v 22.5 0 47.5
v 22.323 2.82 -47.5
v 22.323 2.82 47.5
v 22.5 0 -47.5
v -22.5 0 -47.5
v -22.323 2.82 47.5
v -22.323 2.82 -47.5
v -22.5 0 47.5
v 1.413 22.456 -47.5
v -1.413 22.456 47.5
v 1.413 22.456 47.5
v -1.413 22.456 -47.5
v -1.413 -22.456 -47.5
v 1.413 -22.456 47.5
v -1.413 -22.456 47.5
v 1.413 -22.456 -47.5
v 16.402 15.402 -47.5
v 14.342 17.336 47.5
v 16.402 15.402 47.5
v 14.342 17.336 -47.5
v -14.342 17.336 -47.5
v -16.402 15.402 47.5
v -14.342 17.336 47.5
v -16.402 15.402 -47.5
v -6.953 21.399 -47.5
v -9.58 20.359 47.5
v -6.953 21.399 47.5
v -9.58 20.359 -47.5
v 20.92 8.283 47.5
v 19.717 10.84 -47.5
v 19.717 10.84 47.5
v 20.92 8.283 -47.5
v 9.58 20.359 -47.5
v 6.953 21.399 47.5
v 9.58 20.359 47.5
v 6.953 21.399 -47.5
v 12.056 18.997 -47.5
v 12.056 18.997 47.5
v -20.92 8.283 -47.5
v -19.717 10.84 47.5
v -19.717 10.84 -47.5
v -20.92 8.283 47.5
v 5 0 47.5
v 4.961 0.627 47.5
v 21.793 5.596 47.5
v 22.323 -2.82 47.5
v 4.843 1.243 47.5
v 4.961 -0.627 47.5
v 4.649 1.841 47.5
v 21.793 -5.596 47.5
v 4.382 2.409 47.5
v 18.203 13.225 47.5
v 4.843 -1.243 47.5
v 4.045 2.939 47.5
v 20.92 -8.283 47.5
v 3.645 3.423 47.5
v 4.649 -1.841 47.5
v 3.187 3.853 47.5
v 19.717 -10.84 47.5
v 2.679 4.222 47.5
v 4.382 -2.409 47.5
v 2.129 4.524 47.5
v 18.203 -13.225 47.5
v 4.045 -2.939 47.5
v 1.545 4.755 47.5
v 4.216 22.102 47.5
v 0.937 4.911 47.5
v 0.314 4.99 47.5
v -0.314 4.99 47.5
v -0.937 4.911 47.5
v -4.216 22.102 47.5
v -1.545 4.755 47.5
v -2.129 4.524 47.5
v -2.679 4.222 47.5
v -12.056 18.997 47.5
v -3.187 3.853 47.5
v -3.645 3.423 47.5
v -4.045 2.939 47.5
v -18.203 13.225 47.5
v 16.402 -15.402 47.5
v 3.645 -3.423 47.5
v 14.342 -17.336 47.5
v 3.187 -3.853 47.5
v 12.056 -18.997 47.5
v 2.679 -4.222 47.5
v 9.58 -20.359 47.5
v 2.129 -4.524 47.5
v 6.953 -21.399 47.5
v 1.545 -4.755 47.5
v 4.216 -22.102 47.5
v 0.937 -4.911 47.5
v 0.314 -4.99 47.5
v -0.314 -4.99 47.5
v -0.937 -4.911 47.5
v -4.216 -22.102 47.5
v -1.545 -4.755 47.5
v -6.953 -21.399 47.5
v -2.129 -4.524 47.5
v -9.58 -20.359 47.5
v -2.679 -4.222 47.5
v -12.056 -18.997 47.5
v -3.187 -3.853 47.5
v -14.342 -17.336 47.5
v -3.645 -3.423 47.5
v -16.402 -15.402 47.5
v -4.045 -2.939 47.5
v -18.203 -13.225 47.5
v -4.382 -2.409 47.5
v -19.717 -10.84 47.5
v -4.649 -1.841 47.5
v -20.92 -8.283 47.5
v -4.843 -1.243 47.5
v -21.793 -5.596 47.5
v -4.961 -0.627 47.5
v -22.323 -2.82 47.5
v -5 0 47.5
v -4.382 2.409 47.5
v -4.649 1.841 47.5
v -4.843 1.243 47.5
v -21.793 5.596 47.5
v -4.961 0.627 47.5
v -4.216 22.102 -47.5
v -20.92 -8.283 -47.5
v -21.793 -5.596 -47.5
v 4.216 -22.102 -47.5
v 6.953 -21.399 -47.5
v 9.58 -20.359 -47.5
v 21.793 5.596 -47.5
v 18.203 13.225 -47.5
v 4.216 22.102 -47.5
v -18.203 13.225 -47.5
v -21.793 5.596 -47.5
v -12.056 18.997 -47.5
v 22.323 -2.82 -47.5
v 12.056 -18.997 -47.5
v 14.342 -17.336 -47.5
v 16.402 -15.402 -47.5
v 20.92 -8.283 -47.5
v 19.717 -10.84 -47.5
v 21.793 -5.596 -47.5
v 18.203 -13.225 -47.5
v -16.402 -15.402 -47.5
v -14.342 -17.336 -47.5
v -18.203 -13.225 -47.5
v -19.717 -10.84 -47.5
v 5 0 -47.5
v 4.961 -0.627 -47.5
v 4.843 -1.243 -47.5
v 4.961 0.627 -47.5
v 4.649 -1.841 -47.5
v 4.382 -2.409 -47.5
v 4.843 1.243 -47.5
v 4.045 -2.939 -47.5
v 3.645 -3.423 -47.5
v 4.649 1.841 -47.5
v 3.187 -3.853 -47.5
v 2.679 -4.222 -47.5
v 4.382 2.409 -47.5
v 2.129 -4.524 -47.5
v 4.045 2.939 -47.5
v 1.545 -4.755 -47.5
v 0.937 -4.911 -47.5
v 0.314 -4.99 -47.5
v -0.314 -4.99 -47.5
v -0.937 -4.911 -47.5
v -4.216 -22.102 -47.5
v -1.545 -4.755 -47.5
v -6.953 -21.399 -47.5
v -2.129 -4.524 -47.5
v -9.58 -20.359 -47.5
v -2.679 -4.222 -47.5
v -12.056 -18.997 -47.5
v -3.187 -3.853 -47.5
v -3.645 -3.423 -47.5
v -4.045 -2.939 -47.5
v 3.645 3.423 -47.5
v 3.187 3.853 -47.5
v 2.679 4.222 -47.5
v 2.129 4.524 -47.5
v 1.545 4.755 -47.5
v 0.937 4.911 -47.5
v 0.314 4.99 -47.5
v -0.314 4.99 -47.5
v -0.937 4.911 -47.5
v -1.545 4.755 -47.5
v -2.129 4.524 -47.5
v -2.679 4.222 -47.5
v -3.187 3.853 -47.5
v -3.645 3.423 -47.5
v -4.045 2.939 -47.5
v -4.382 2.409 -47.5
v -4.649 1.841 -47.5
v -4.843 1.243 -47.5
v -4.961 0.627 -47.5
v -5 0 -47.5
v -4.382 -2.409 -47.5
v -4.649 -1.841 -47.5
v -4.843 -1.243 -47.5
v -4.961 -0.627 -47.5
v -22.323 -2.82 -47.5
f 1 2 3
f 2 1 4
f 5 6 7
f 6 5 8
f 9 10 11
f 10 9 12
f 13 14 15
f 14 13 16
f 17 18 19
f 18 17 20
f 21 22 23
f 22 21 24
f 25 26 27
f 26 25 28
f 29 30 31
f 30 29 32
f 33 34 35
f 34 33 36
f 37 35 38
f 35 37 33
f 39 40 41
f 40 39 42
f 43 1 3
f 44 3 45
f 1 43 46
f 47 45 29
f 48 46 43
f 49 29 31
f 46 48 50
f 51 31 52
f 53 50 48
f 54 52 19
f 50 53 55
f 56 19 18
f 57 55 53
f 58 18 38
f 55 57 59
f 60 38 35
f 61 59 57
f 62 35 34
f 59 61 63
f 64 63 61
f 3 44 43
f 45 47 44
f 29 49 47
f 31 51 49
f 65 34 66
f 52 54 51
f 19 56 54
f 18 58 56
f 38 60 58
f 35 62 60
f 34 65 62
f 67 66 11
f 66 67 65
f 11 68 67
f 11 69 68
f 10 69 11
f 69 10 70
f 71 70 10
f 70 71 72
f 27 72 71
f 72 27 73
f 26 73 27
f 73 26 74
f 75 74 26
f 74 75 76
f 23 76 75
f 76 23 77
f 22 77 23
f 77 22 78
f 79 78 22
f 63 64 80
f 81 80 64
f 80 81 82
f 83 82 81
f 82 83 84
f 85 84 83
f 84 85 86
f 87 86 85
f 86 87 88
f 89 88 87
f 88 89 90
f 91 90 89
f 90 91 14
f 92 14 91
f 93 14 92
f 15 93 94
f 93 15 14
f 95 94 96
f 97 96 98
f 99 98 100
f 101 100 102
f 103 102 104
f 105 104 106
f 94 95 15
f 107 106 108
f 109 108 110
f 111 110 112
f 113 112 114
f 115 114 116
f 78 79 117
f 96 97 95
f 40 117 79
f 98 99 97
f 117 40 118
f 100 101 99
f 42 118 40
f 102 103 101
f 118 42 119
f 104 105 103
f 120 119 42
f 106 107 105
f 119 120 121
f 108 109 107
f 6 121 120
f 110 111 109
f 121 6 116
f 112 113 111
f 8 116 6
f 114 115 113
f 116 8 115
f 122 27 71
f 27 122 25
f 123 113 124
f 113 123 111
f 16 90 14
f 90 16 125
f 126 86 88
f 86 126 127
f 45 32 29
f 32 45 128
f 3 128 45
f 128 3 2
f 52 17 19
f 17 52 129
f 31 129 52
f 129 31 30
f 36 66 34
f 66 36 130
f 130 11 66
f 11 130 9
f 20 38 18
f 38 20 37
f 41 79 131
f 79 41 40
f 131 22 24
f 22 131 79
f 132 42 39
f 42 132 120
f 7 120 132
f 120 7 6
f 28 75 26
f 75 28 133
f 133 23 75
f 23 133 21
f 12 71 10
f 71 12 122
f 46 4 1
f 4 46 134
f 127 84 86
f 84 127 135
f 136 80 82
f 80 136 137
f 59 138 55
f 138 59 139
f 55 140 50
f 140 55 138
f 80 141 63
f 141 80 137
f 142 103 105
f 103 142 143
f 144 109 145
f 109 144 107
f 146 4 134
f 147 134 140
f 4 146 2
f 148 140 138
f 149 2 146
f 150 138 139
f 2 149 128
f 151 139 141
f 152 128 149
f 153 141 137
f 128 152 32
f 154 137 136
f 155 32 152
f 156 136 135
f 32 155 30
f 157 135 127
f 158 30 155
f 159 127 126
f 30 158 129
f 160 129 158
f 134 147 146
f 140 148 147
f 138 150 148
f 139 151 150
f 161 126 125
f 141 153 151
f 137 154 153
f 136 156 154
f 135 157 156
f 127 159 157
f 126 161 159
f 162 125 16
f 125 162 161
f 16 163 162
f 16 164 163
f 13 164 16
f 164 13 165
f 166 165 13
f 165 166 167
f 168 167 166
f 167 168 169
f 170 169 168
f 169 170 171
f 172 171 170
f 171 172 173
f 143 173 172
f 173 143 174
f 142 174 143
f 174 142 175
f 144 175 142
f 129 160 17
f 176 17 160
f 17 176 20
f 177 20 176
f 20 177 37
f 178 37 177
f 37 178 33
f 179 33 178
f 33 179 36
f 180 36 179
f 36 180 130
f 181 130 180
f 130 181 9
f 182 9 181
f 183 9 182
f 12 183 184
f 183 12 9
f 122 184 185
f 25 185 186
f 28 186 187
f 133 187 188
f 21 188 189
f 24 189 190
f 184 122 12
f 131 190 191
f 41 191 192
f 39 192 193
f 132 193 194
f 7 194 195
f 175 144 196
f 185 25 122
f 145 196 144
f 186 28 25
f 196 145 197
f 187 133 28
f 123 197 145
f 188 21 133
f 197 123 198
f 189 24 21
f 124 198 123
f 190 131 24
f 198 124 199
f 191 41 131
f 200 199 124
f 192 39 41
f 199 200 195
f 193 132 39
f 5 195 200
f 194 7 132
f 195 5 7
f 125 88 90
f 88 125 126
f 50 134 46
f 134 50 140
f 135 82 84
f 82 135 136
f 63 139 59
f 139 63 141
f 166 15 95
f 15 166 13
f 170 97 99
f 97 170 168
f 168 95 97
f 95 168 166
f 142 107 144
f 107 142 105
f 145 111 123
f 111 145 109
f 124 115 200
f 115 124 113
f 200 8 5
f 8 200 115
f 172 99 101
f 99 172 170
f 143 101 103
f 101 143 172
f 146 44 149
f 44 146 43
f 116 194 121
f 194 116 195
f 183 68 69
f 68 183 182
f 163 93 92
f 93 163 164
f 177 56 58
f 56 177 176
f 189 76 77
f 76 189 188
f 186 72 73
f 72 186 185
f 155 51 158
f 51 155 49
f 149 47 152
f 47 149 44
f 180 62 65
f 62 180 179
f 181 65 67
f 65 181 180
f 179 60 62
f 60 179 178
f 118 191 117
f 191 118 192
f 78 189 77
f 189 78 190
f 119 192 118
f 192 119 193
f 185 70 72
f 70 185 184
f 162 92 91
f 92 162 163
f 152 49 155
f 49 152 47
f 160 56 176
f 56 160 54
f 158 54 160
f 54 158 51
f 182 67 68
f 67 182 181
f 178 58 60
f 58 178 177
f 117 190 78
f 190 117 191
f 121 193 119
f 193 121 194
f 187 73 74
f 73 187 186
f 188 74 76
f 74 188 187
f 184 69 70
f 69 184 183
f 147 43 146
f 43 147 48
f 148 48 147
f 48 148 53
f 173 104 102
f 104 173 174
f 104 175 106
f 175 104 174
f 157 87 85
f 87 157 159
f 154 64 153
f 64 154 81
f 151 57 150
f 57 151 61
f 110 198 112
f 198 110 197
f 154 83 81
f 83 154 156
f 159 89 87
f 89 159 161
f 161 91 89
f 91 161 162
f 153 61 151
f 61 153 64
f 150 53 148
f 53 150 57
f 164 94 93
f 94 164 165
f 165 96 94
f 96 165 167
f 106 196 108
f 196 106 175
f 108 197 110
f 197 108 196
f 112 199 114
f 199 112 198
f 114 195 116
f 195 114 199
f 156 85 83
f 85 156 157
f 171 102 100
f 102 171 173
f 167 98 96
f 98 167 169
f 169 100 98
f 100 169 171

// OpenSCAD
$fn = 50;


difference() {
	union() {
		translate(v = [0, 0, -47.5000000000]) {
			cylinder(h = 95, r = 22.5000000000);
		}
	}
	union() {
		translate(v = [0, 0, -100.0000000000]) {
			cylinder(h = 200, r = 5);
		}
	}
}
